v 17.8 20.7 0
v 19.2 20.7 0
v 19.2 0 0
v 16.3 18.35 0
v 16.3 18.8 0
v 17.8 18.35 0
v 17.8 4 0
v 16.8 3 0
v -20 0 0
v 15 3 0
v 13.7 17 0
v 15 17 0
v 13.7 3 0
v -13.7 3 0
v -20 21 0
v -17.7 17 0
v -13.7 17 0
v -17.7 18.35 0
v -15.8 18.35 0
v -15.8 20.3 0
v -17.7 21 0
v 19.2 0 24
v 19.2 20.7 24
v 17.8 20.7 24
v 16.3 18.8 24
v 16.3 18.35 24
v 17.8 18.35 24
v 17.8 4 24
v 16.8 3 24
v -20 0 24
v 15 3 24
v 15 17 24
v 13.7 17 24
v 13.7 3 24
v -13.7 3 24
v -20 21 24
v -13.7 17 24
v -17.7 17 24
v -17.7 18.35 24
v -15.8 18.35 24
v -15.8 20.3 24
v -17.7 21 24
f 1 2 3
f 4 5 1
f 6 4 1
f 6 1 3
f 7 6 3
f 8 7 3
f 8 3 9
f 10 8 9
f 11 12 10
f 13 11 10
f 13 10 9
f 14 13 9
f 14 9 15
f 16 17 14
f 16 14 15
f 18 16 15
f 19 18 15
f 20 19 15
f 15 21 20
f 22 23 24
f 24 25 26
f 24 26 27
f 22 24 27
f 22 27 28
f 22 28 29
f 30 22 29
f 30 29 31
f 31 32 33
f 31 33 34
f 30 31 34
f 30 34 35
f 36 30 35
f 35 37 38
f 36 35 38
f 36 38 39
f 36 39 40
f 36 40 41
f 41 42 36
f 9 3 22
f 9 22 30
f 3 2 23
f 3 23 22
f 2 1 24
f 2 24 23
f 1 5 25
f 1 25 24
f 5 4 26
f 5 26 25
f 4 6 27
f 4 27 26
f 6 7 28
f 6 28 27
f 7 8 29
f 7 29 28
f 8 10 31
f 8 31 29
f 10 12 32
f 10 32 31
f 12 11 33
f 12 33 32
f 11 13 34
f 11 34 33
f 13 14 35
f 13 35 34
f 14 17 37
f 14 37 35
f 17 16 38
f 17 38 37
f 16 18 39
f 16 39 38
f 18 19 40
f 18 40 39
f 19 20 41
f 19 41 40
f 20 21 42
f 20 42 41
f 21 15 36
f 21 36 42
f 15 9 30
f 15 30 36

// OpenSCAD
// TH35 snap-on attachment prototype. All dimensions in mm.
// Print on the extrusion end (as exported). Flat mounting face: y=0.
rail_width = 35;
side_clearance = 0.30; // total nominal extra width
flange_gap = 1.35; // tune to measured flange thickness + clearance
clip_width = 24; // along rail
arm_thickness = 1.4;
rail_seat = 17;
base_thickness = 3;
h = rail_width/2 + side_clearance/2 + 0.15;
r = h + arm_thickness;
s = rail_seat;
g = flange_gap;
linear_extrude(height=clip_width, convexity=10)
polygon(points=[[-h-2.2,0],[r,0],[r,s+3.7],[h,s+3.7],
 [h-1.5,s+1.8],[h-1.5,s+g],[h,s+g],[h,base_thickness+1],
 [h-1,base_thickness],[h-2.8,base_thickness],[h-2.8,s],
 [h-4.1,s],[h-4.1,base_thickness],[-h+4.1,base_thickness],
 [-h+4.1,s],[-h+0.1,s],[-h+0.1,s+g],[-h+2,s+g],
 [-h+2,s+3.3],[-h+0.1,s+4],[-h-2.2,s+4]]);
